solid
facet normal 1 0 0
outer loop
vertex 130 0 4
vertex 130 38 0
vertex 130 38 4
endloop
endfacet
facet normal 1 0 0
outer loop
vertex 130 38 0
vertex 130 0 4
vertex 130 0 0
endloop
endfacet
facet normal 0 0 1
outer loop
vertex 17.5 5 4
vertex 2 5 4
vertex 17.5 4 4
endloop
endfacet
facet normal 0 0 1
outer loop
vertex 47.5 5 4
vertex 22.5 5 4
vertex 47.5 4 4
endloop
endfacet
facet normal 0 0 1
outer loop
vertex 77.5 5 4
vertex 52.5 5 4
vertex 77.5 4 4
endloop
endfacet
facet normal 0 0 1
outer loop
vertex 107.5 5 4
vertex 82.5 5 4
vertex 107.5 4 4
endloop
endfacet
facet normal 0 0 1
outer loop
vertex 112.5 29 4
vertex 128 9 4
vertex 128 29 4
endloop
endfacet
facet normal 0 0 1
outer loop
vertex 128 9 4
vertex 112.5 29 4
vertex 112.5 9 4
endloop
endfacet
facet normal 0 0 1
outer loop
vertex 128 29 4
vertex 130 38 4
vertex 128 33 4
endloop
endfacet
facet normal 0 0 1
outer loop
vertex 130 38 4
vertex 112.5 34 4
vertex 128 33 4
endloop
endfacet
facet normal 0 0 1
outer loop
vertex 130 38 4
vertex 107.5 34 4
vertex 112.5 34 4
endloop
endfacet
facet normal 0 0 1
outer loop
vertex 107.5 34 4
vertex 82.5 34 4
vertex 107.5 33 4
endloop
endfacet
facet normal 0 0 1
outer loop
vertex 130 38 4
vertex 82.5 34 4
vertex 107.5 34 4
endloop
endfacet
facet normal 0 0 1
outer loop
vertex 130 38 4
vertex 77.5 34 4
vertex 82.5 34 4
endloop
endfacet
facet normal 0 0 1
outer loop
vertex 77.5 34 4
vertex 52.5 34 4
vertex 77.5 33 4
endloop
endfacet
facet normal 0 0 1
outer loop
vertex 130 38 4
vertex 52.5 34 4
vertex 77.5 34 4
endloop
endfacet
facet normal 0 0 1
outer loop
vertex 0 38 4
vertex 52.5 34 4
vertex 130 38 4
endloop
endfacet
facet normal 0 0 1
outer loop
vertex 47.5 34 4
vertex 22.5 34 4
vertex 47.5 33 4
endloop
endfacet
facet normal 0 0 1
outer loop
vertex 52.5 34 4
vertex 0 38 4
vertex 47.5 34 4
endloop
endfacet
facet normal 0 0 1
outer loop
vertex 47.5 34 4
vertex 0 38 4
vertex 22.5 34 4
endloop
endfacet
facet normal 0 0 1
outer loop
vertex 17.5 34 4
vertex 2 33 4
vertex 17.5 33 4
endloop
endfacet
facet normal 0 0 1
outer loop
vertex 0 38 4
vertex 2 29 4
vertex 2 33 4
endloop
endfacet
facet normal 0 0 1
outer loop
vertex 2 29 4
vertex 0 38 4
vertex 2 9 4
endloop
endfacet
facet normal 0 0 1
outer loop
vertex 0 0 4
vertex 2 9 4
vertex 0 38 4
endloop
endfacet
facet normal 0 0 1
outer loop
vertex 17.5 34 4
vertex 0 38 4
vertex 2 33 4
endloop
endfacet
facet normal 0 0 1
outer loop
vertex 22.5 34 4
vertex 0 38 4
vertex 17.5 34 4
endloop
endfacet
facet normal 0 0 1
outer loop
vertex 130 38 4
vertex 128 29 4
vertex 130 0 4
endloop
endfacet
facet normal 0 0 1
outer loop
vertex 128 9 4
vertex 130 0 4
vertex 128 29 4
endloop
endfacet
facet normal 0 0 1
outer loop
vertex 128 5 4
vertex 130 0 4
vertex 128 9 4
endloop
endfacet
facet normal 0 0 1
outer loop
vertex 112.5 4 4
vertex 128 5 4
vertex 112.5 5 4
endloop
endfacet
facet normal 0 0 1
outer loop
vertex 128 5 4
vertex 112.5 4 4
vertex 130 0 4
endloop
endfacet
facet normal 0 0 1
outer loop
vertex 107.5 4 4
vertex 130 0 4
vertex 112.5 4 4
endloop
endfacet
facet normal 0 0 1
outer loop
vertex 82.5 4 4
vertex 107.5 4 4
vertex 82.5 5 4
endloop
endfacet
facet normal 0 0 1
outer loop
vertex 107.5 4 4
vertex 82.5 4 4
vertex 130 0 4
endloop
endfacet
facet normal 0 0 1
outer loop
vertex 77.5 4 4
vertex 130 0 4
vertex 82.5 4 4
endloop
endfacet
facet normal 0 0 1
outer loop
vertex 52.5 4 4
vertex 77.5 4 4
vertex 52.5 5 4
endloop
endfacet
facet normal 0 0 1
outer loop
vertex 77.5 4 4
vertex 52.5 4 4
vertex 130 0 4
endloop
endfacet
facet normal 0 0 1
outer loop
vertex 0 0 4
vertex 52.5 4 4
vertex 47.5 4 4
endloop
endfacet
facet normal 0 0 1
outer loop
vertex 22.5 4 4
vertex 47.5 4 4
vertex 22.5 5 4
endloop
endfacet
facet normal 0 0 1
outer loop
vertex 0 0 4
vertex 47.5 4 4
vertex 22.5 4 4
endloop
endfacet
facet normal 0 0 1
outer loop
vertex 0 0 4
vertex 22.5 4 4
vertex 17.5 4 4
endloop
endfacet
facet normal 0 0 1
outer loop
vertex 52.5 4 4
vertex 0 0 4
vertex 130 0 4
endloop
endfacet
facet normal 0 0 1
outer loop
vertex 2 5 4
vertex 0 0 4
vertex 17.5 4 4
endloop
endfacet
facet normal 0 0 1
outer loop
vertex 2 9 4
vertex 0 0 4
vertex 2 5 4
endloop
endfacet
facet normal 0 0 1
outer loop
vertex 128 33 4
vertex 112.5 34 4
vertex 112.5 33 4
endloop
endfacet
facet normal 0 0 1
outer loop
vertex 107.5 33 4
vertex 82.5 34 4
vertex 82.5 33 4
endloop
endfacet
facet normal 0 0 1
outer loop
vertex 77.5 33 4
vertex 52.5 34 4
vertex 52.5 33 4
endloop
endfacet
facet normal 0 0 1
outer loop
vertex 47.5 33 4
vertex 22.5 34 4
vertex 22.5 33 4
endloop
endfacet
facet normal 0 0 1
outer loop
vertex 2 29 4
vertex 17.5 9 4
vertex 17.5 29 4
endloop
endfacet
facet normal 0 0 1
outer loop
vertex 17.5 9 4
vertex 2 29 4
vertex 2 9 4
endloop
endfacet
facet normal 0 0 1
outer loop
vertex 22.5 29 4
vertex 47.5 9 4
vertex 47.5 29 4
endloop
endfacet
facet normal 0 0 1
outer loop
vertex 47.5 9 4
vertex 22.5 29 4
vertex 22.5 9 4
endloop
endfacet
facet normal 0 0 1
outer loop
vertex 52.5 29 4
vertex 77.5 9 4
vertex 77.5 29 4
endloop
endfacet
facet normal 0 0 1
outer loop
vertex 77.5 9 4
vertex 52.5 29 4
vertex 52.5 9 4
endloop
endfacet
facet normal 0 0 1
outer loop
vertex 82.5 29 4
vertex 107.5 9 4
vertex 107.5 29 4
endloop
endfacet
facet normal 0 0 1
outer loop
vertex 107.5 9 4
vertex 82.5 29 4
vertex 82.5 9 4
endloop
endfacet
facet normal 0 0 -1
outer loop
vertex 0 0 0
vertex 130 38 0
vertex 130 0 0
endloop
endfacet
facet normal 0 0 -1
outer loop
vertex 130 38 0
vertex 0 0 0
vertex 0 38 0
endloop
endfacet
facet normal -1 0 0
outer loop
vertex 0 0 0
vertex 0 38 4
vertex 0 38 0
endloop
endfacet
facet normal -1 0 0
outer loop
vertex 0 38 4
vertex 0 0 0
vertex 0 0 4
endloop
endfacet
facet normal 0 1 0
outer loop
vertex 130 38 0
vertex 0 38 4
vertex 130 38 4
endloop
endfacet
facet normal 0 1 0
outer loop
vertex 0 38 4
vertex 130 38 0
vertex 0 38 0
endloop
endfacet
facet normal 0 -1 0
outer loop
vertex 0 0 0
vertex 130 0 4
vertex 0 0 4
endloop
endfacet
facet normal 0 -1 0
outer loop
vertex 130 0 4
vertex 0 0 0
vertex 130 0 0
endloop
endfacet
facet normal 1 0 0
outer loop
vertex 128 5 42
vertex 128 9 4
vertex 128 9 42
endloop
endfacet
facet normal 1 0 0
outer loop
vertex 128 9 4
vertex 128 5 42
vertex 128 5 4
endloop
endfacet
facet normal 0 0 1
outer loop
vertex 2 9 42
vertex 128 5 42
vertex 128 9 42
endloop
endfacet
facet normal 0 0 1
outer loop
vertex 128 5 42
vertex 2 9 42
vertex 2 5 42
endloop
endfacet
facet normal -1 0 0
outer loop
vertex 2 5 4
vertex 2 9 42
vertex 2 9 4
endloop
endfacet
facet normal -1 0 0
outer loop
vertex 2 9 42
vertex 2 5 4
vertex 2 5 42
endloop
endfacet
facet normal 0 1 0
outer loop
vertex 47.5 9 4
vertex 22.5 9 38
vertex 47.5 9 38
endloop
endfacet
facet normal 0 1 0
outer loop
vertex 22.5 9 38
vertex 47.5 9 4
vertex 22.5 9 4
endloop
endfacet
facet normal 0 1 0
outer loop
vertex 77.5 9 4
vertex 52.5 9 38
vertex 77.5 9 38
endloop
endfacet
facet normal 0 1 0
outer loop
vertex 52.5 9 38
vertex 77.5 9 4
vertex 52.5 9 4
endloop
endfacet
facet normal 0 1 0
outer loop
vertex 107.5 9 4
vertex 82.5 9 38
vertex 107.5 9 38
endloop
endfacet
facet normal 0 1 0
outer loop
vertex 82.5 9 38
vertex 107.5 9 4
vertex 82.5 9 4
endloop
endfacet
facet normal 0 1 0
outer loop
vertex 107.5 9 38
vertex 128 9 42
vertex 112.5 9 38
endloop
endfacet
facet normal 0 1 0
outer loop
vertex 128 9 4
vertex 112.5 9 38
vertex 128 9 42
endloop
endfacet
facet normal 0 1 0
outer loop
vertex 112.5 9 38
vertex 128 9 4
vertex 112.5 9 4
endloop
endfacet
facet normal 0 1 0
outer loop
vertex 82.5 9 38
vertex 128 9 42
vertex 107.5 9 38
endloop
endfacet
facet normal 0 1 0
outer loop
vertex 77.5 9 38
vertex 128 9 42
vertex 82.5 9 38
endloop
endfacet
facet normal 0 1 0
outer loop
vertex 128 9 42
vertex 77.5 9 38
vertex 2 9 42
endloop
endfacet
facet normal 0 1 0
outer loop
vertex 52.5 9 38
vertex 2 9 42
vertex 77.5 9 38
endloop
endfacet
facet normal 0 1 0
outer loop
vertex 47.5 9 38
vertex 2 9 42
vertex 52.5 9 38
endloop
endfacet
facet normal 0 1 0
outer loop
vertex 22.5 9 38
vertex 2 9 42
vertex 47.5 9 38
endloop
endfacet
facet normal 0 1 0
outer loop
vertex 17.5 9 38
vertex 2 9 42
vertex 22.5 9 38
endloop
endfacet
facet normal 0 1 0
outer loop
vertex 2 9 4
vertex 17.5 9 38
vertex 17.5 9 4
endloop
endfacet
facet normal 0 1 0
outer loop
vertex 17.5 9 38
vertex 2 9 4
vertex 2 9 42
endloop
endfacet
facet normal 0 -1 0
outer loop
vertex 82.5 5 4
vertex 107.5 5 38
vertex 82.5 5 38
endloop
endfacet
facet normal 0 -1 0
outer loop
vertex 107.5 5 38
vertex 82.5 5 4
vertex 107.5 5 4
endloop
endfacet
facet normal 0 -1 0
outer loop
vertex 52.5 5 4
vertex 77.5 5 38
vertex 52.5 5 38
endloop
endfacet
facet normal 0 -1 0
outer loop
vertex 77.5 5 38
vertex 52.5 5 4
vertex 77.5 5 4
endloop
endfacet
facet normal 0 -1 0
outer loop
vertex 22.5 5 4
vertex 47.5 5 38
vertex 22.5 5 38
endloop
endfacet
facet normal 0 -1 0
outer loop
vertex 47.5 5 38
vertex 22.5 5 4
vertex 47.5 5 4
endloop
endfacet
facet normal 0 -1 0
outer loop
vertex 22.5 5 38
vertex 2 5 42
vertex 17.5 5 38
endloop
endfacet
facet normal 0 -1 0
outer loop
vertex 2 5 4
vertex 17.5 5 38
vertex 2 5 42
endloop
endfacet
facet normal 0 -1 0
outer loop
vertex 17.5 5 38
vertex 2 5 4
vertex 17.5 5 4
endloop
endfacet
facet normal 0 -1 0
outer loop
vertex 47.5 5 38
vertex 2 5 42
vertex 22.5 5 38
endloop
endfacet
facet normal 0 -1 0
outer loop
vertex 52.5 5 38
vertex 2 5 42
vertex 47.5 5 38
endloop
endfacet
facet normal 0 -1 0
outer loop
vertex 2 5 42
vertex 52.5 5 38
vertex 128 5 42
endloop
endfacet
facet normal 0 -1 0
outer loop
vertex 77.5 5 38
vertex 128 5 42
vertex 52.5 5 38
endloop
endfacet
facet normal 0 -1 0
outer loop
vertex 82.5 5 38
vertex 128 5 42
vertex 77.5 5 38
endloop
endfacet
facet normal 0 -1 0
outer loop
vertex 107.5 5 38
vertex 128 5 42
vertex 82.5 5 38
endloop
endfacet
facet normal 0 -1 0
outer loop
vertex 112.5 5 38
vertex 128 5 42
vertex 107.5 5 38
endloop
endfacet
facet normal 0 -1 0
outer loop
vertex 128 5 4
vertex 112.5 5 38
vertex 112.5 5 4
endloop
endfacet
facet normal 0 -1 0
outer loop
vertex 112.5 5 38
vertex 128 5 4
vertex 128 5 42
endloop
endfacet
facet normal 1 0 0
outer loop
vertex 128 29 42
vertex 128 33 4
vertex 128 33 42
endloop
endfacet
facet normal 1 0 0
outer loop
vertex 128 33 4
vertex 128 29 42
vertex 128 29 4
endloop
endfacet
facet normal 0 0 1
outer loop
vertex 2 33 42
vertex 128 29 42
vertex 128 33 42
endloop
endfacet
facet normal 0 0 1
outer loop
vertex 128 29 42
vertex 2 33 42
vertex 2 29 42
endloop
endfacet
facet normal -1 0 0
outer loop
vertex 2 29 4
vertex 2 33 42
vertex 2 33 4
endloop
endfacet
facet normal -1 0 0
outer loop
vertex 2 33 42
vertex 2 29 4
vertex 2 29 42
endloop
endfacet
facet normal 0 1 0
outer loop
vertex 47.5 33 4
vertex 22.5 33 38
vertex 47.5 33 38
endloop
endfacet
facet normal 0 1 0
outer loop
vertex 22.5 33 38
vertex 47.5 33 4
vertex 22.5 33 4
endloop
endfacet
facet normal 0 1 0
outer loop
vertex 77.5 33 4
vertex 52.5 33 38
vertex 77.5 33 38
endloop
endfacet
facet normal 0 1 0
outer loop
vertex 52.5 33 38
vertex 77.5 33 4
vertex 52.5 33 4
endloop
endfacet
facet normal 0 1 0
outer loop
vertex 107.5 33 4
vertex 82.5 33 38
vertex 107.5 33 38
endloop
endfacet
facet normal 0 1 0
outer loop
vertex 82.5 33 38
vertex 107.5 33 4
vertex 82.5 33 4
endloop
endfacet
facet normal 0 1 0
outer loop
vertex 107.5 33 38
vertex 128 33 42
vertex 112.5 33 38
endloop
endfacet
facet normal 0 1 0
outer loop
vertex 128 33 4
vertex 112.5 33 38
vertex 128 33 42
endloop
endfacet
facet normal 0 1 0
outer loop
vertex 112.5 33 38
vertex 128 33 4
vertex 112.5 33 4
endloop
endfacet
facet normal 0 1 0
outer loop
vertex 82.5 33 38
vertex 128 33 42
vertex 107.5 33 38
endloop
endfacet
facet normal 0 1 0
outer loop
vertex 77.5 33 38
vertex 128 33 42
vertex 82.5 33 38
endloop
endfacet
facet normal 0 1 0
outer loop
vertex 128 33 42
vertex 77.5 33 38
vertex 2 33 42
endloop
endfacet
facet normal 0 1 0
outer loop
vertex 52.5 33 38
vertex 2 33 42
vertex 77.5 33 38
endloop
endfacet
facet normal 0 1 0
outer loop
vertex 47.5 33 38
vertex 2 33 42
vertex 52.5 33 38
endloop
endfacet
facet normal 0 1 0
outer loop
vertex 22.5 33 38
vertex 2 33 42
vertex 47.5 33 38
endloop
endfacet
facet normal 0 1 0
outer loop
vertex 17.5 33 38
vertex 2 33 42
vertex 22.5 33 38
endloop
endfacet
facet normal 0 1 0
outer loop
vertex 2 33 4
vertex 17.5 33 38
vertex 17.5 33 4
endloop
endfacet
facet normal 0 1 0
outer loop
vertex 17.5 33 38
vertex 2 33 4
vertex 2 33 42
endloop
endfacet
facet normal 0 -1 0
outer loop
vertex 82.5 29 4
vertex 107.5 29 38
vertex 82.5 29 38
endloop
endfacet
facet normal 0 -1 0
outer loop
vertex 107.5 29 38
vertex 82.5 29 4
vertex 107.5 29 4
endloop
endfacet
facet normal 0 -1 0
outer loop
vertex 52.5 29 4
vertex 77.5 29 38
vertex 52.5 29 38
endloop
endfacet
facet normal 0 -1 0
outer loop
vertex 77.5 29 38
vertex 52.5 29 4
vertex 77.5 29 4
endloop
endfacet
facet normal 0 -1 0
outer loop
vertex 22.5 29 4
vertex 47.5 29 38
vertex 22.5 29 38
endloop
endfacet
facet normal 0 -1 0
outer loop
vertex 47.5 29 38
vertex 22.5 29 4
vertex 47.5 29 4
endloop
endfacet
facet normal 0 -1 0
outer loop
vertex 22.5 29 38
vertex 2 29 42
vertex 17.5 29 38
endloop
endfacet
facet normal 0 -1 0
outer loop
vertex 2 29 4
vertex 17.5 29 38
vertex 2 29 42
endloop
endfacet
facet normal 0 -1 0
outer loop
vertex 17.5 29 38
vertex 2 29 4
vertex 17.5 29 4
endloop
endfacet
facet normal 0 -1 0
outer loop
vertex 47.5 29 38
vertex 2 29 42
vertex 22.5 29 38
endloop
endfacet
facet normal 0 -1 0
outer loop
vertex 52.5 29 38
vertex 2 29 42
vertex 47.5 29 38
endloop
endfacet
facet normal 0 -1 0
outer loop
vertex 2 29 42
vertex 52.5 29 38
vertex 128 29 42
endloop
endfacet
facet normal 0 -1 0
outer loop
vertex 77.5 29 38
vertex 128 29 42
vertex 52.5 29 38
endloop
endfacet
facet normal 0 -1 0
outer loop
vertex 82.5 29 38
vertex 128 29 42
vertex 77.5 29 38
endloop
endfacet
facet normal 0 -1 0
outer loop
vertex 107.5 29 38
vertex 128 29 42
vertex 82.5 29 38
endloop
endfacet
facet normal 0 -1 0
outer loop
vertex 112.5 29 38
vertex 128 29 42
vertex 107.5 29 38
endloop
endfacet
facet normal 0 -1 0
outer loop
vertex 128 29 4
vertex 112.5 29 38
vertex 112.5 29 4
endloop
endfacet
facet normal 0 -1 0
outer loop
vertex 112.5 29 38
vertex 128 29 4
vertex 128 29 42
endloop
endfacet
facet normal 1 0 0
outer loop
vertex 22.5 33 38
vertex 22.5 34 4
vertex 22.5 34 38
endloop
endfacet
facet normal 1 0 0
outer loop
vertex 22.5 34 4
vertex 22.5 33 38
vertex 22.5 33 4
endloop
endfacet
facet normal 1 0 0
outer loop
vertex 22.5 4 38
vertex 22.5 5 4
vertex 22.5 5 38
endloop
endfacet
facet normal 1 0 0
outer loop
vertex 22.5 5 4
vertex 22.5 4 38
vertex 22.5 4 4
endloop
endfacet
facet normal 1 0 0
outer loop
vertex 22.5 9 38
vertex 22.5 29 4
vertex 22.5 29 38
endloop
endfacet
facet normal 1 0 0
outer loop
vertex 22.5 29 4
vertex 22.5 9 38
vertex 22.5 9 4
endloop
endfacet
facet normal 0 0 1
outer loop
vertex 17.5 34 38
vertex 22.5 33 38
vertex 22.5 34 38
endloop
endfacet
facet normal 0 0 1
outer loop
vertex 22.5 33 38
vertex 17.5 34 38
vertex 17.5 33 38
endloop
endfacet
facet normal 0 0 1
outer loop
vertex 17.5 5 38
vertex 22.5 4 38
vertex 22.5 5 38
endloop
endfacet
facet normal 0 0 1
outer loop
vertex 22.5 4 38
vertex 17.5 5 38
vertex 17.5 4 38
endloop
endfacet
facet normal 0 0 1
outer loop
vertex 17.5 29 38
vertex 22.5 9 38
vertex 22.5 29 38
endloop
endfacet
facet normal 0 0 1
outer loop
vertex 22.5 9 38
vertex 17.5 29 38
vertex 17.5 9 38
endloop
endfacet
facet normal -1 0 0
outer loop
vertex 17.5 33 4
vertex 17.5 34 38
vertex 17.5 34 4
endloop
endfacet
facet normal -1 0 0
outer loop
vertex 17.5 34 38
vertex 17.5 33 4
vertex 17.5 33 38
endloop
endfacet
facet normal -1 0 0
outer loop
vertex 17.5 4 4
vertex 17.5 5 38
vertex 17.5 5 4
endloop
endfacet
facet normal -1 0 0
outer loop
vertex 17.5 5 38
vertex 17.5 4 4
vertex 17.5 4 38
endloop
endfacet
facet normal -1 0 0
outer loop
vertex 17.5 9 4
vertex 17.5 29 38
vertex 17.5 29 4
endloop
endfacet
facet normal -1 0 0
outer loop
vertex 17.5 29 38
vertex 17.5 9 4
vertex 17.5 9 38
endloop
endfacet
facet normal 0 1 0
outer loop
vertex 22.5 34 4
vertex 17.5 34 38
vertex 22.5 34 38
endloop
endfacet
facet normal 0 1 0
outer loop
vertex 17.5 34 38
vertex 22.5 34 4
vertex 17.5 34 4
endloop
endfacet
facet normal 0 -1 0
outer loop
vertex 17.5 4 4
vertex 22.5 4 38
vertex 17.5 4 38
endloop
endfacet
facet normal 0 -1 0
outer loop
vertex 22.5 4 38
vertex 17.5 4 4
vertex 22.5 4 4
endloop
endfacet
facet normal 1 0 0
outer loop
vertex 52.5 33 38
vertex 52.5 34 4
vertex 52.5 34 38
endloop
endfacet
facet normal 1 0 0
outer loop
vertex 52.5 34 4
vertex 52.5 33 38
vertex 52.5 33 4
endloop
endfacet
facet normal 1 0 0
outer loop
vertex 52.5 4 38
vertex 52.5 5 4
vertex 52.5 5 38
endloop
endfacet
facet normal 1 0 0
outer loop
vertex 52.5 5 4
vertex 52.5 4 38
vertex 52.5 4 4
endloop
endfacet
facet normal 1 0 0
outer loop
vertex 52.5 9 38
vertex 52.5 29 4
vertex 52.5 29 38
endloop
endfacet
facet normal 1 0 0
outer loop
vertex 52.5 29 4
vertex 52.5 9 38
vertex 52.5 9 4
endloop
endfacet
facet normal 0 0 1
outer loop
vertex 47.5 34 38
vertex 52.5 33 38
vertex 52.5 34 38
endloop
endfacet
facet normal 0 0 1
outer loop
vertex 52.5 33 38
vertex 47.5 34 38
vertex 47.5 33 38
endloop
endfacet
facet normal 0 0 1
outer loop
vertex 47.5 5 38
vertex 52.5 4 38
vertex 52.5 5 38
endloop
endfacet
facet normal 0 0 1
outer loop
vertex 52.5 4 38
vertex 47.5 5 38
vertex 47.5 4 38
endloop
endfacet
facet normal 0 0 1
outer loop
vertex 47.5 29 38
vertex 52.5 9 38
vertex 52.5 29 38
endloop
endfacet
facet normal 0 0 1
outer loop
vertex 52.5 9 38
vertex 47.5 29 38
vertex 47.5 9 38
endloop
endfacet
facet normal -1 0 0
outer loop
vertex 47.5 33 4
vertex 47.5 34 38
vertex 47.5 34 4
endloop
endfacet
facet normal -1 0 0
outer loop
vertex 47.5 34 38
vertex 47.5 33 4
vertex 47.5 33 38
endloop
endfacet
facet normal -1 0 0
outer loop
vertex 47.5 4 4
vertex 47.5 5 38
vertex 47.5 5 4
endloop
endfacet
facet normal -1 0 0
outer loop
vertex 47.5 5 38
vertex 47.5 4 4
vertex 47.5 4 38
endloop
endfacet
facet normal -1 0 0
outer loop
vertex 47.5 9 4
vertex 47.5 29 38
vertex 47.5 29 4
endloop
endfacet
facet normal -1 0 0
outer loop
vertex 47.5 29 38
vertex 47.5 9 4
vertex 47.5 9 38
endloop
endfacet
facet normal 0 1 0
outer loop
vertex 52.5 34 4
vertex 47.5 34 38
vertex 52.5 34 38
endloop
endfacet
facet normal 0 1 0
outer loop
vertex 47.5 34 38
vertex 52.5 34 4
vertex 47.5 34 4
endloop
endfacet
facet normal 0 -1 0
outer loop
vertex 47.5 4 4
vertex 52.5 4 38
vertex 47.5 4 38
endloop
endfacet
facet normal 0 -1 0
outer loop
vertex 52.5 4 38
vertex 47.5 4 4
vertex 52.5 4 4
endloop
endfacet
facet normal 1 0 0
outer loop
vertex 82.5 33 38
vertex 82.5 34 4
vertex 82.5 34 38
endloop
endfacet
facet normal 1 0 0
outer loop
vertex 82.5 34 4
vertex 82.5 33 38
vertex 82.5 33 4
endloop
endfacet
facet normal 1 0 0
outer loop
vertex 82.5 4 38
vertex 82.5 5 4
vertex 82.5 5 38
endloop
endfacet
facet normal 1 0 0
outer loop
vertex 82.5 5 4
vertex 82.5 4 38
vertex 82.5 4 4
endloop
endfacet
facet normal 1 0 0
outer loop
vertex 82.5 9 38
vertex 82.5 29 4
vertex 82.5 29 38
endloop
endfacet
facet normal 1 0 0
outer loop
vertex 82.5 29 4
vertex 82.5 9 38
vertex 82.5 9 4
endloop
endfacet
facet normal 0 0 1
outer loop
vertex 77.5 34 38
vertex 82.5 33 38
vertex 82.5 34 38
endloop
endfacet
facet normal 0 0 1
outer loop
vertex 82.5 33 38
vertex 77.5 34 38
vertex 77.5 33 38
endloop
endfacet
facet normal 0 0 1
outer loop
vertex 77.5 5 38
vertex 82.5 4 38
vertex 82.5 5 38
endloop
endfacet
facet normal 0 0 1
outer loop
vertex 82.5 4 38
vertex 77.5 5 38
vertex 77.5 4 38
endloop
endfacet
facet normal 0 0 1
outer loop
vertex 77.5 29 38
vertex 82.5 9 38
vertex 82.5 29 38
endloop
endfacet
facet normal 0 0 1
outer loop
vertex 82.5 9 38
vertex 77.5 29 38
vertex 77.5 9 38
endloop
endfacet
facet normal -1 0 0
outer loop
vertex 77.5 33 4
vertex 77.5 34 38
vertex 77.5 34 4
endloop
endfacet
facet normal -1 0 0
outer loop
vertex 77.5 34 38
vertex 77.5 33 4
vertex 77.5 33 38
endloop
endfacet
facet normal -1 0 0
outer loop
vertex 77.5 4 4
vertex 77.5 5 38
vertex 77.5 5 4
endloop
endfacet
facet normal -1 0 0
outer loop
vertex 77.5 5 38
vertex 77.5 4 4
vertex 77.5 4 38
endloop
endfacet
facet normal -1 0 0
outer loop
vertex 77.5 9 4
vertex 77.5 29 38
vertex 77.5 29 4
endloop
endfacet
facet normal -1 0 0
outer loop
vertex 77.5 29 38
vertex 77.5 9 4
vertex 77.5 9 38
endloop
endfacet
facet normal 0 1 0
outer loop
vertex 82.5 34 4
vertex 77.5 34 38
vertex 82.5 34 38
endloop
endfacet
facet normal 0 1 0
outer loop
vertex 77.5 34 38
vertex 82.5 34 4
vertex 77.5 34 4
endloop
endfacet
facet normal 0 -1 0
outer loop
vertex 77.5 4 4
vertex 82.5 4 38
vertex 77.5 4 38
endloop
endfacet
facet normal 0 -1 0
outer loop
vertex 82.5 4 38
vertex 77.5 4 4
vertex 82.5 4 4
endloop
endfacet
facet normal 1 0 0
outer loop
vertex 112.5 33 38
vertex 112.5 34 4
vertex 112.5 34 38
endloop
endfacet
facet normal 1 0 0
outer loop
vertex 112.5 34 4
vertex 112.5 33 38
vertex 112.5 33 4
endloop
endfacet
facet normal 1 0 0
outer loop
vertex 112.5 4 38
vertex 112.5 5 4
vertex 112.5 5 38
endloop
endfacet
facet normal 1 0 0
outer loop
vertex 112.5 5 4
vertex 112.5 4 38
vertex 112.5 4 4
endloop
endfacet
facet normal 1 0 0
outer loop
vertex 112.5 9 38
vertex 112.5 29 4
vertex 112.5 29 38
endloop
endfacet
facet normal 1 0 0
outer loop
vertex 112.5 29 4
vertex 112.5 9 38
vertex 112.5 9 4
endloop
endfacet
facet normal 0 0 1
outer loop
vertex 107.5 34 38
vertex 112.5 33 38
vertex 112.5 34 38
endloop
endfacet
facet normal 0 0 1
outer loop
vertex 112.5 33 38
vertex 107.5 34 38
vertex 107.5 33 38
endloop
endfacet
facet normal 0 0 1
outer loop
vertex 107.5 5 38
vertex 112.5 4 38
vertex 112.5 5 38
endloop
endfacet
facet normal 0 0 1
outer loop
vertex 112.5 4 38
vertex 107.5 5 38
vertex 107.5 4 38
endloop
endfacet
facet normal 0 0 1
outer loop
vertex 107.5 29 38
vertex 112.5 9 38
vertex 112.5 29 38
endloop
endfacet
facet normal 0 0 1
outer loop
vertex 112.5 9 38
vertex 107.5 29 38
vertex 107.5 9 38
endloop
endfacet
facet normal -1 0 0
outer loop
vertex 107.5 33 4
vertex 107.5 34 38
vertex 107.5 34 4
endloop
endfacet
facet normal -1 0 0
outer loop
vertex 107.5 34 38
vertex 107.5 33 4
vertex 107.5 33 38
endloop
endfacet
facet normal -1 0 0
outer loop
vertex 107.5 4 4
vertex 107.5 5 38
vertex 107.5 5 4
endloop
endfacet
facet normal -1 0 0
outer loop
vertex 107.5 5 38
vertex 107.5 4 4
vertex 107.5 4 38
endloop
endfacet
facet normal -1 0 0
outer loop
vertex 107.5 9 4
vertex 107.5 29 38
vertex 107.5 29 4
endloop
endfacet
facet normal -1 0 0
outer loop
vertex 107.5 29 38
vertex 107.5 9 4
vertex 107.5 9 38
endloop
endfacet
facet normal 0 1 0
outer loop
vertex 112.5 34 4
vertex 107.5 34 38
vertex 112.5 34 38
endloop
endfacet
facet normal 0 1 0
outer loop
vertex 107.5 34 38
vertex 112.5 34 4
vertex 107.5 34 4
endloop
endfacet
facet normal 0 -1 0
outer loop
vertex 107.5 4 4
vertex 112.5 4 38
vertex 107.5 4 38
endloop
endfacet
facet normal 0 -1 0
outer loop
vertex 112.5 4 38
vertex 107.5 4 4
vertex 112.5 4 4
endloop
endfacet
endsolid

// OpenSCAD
union() {
	translate(v = [65.0, 19.0, 2.0]) {
		cube(center = true, size = [130.0, 38.0, 4.0]);
	}
	translate(v = [65.0, 7.0, 23.0]) {
		cube(center = true, size = [126.0, 4.0, 38.0]);
	}
	translate(v = [65.0, 31.0, 23.0]) {
		cube(center = true, size = [126.0, 4.0, 38.0]);
	}
	translate(v = [20.0, 19.0, 21.0]) {
		cube(center = true, size = [5.0, 30.0, 34.0]);
	}
	translate(v = [50.0, 19.0, 21.0]) {
		cube(center = true, size = [5.0, 30.0, 34.0]);
	}
	translate(v = [80.0, 19.0, 21.0]) {
		cube(center = true, size = [5.0, 30.0, 34.0]);
	}
	translate(v = [110.0, 19.0, 21.0]) {
		cube(center = true, size = [5.0, 30.0, 34.0]);
	}
}
